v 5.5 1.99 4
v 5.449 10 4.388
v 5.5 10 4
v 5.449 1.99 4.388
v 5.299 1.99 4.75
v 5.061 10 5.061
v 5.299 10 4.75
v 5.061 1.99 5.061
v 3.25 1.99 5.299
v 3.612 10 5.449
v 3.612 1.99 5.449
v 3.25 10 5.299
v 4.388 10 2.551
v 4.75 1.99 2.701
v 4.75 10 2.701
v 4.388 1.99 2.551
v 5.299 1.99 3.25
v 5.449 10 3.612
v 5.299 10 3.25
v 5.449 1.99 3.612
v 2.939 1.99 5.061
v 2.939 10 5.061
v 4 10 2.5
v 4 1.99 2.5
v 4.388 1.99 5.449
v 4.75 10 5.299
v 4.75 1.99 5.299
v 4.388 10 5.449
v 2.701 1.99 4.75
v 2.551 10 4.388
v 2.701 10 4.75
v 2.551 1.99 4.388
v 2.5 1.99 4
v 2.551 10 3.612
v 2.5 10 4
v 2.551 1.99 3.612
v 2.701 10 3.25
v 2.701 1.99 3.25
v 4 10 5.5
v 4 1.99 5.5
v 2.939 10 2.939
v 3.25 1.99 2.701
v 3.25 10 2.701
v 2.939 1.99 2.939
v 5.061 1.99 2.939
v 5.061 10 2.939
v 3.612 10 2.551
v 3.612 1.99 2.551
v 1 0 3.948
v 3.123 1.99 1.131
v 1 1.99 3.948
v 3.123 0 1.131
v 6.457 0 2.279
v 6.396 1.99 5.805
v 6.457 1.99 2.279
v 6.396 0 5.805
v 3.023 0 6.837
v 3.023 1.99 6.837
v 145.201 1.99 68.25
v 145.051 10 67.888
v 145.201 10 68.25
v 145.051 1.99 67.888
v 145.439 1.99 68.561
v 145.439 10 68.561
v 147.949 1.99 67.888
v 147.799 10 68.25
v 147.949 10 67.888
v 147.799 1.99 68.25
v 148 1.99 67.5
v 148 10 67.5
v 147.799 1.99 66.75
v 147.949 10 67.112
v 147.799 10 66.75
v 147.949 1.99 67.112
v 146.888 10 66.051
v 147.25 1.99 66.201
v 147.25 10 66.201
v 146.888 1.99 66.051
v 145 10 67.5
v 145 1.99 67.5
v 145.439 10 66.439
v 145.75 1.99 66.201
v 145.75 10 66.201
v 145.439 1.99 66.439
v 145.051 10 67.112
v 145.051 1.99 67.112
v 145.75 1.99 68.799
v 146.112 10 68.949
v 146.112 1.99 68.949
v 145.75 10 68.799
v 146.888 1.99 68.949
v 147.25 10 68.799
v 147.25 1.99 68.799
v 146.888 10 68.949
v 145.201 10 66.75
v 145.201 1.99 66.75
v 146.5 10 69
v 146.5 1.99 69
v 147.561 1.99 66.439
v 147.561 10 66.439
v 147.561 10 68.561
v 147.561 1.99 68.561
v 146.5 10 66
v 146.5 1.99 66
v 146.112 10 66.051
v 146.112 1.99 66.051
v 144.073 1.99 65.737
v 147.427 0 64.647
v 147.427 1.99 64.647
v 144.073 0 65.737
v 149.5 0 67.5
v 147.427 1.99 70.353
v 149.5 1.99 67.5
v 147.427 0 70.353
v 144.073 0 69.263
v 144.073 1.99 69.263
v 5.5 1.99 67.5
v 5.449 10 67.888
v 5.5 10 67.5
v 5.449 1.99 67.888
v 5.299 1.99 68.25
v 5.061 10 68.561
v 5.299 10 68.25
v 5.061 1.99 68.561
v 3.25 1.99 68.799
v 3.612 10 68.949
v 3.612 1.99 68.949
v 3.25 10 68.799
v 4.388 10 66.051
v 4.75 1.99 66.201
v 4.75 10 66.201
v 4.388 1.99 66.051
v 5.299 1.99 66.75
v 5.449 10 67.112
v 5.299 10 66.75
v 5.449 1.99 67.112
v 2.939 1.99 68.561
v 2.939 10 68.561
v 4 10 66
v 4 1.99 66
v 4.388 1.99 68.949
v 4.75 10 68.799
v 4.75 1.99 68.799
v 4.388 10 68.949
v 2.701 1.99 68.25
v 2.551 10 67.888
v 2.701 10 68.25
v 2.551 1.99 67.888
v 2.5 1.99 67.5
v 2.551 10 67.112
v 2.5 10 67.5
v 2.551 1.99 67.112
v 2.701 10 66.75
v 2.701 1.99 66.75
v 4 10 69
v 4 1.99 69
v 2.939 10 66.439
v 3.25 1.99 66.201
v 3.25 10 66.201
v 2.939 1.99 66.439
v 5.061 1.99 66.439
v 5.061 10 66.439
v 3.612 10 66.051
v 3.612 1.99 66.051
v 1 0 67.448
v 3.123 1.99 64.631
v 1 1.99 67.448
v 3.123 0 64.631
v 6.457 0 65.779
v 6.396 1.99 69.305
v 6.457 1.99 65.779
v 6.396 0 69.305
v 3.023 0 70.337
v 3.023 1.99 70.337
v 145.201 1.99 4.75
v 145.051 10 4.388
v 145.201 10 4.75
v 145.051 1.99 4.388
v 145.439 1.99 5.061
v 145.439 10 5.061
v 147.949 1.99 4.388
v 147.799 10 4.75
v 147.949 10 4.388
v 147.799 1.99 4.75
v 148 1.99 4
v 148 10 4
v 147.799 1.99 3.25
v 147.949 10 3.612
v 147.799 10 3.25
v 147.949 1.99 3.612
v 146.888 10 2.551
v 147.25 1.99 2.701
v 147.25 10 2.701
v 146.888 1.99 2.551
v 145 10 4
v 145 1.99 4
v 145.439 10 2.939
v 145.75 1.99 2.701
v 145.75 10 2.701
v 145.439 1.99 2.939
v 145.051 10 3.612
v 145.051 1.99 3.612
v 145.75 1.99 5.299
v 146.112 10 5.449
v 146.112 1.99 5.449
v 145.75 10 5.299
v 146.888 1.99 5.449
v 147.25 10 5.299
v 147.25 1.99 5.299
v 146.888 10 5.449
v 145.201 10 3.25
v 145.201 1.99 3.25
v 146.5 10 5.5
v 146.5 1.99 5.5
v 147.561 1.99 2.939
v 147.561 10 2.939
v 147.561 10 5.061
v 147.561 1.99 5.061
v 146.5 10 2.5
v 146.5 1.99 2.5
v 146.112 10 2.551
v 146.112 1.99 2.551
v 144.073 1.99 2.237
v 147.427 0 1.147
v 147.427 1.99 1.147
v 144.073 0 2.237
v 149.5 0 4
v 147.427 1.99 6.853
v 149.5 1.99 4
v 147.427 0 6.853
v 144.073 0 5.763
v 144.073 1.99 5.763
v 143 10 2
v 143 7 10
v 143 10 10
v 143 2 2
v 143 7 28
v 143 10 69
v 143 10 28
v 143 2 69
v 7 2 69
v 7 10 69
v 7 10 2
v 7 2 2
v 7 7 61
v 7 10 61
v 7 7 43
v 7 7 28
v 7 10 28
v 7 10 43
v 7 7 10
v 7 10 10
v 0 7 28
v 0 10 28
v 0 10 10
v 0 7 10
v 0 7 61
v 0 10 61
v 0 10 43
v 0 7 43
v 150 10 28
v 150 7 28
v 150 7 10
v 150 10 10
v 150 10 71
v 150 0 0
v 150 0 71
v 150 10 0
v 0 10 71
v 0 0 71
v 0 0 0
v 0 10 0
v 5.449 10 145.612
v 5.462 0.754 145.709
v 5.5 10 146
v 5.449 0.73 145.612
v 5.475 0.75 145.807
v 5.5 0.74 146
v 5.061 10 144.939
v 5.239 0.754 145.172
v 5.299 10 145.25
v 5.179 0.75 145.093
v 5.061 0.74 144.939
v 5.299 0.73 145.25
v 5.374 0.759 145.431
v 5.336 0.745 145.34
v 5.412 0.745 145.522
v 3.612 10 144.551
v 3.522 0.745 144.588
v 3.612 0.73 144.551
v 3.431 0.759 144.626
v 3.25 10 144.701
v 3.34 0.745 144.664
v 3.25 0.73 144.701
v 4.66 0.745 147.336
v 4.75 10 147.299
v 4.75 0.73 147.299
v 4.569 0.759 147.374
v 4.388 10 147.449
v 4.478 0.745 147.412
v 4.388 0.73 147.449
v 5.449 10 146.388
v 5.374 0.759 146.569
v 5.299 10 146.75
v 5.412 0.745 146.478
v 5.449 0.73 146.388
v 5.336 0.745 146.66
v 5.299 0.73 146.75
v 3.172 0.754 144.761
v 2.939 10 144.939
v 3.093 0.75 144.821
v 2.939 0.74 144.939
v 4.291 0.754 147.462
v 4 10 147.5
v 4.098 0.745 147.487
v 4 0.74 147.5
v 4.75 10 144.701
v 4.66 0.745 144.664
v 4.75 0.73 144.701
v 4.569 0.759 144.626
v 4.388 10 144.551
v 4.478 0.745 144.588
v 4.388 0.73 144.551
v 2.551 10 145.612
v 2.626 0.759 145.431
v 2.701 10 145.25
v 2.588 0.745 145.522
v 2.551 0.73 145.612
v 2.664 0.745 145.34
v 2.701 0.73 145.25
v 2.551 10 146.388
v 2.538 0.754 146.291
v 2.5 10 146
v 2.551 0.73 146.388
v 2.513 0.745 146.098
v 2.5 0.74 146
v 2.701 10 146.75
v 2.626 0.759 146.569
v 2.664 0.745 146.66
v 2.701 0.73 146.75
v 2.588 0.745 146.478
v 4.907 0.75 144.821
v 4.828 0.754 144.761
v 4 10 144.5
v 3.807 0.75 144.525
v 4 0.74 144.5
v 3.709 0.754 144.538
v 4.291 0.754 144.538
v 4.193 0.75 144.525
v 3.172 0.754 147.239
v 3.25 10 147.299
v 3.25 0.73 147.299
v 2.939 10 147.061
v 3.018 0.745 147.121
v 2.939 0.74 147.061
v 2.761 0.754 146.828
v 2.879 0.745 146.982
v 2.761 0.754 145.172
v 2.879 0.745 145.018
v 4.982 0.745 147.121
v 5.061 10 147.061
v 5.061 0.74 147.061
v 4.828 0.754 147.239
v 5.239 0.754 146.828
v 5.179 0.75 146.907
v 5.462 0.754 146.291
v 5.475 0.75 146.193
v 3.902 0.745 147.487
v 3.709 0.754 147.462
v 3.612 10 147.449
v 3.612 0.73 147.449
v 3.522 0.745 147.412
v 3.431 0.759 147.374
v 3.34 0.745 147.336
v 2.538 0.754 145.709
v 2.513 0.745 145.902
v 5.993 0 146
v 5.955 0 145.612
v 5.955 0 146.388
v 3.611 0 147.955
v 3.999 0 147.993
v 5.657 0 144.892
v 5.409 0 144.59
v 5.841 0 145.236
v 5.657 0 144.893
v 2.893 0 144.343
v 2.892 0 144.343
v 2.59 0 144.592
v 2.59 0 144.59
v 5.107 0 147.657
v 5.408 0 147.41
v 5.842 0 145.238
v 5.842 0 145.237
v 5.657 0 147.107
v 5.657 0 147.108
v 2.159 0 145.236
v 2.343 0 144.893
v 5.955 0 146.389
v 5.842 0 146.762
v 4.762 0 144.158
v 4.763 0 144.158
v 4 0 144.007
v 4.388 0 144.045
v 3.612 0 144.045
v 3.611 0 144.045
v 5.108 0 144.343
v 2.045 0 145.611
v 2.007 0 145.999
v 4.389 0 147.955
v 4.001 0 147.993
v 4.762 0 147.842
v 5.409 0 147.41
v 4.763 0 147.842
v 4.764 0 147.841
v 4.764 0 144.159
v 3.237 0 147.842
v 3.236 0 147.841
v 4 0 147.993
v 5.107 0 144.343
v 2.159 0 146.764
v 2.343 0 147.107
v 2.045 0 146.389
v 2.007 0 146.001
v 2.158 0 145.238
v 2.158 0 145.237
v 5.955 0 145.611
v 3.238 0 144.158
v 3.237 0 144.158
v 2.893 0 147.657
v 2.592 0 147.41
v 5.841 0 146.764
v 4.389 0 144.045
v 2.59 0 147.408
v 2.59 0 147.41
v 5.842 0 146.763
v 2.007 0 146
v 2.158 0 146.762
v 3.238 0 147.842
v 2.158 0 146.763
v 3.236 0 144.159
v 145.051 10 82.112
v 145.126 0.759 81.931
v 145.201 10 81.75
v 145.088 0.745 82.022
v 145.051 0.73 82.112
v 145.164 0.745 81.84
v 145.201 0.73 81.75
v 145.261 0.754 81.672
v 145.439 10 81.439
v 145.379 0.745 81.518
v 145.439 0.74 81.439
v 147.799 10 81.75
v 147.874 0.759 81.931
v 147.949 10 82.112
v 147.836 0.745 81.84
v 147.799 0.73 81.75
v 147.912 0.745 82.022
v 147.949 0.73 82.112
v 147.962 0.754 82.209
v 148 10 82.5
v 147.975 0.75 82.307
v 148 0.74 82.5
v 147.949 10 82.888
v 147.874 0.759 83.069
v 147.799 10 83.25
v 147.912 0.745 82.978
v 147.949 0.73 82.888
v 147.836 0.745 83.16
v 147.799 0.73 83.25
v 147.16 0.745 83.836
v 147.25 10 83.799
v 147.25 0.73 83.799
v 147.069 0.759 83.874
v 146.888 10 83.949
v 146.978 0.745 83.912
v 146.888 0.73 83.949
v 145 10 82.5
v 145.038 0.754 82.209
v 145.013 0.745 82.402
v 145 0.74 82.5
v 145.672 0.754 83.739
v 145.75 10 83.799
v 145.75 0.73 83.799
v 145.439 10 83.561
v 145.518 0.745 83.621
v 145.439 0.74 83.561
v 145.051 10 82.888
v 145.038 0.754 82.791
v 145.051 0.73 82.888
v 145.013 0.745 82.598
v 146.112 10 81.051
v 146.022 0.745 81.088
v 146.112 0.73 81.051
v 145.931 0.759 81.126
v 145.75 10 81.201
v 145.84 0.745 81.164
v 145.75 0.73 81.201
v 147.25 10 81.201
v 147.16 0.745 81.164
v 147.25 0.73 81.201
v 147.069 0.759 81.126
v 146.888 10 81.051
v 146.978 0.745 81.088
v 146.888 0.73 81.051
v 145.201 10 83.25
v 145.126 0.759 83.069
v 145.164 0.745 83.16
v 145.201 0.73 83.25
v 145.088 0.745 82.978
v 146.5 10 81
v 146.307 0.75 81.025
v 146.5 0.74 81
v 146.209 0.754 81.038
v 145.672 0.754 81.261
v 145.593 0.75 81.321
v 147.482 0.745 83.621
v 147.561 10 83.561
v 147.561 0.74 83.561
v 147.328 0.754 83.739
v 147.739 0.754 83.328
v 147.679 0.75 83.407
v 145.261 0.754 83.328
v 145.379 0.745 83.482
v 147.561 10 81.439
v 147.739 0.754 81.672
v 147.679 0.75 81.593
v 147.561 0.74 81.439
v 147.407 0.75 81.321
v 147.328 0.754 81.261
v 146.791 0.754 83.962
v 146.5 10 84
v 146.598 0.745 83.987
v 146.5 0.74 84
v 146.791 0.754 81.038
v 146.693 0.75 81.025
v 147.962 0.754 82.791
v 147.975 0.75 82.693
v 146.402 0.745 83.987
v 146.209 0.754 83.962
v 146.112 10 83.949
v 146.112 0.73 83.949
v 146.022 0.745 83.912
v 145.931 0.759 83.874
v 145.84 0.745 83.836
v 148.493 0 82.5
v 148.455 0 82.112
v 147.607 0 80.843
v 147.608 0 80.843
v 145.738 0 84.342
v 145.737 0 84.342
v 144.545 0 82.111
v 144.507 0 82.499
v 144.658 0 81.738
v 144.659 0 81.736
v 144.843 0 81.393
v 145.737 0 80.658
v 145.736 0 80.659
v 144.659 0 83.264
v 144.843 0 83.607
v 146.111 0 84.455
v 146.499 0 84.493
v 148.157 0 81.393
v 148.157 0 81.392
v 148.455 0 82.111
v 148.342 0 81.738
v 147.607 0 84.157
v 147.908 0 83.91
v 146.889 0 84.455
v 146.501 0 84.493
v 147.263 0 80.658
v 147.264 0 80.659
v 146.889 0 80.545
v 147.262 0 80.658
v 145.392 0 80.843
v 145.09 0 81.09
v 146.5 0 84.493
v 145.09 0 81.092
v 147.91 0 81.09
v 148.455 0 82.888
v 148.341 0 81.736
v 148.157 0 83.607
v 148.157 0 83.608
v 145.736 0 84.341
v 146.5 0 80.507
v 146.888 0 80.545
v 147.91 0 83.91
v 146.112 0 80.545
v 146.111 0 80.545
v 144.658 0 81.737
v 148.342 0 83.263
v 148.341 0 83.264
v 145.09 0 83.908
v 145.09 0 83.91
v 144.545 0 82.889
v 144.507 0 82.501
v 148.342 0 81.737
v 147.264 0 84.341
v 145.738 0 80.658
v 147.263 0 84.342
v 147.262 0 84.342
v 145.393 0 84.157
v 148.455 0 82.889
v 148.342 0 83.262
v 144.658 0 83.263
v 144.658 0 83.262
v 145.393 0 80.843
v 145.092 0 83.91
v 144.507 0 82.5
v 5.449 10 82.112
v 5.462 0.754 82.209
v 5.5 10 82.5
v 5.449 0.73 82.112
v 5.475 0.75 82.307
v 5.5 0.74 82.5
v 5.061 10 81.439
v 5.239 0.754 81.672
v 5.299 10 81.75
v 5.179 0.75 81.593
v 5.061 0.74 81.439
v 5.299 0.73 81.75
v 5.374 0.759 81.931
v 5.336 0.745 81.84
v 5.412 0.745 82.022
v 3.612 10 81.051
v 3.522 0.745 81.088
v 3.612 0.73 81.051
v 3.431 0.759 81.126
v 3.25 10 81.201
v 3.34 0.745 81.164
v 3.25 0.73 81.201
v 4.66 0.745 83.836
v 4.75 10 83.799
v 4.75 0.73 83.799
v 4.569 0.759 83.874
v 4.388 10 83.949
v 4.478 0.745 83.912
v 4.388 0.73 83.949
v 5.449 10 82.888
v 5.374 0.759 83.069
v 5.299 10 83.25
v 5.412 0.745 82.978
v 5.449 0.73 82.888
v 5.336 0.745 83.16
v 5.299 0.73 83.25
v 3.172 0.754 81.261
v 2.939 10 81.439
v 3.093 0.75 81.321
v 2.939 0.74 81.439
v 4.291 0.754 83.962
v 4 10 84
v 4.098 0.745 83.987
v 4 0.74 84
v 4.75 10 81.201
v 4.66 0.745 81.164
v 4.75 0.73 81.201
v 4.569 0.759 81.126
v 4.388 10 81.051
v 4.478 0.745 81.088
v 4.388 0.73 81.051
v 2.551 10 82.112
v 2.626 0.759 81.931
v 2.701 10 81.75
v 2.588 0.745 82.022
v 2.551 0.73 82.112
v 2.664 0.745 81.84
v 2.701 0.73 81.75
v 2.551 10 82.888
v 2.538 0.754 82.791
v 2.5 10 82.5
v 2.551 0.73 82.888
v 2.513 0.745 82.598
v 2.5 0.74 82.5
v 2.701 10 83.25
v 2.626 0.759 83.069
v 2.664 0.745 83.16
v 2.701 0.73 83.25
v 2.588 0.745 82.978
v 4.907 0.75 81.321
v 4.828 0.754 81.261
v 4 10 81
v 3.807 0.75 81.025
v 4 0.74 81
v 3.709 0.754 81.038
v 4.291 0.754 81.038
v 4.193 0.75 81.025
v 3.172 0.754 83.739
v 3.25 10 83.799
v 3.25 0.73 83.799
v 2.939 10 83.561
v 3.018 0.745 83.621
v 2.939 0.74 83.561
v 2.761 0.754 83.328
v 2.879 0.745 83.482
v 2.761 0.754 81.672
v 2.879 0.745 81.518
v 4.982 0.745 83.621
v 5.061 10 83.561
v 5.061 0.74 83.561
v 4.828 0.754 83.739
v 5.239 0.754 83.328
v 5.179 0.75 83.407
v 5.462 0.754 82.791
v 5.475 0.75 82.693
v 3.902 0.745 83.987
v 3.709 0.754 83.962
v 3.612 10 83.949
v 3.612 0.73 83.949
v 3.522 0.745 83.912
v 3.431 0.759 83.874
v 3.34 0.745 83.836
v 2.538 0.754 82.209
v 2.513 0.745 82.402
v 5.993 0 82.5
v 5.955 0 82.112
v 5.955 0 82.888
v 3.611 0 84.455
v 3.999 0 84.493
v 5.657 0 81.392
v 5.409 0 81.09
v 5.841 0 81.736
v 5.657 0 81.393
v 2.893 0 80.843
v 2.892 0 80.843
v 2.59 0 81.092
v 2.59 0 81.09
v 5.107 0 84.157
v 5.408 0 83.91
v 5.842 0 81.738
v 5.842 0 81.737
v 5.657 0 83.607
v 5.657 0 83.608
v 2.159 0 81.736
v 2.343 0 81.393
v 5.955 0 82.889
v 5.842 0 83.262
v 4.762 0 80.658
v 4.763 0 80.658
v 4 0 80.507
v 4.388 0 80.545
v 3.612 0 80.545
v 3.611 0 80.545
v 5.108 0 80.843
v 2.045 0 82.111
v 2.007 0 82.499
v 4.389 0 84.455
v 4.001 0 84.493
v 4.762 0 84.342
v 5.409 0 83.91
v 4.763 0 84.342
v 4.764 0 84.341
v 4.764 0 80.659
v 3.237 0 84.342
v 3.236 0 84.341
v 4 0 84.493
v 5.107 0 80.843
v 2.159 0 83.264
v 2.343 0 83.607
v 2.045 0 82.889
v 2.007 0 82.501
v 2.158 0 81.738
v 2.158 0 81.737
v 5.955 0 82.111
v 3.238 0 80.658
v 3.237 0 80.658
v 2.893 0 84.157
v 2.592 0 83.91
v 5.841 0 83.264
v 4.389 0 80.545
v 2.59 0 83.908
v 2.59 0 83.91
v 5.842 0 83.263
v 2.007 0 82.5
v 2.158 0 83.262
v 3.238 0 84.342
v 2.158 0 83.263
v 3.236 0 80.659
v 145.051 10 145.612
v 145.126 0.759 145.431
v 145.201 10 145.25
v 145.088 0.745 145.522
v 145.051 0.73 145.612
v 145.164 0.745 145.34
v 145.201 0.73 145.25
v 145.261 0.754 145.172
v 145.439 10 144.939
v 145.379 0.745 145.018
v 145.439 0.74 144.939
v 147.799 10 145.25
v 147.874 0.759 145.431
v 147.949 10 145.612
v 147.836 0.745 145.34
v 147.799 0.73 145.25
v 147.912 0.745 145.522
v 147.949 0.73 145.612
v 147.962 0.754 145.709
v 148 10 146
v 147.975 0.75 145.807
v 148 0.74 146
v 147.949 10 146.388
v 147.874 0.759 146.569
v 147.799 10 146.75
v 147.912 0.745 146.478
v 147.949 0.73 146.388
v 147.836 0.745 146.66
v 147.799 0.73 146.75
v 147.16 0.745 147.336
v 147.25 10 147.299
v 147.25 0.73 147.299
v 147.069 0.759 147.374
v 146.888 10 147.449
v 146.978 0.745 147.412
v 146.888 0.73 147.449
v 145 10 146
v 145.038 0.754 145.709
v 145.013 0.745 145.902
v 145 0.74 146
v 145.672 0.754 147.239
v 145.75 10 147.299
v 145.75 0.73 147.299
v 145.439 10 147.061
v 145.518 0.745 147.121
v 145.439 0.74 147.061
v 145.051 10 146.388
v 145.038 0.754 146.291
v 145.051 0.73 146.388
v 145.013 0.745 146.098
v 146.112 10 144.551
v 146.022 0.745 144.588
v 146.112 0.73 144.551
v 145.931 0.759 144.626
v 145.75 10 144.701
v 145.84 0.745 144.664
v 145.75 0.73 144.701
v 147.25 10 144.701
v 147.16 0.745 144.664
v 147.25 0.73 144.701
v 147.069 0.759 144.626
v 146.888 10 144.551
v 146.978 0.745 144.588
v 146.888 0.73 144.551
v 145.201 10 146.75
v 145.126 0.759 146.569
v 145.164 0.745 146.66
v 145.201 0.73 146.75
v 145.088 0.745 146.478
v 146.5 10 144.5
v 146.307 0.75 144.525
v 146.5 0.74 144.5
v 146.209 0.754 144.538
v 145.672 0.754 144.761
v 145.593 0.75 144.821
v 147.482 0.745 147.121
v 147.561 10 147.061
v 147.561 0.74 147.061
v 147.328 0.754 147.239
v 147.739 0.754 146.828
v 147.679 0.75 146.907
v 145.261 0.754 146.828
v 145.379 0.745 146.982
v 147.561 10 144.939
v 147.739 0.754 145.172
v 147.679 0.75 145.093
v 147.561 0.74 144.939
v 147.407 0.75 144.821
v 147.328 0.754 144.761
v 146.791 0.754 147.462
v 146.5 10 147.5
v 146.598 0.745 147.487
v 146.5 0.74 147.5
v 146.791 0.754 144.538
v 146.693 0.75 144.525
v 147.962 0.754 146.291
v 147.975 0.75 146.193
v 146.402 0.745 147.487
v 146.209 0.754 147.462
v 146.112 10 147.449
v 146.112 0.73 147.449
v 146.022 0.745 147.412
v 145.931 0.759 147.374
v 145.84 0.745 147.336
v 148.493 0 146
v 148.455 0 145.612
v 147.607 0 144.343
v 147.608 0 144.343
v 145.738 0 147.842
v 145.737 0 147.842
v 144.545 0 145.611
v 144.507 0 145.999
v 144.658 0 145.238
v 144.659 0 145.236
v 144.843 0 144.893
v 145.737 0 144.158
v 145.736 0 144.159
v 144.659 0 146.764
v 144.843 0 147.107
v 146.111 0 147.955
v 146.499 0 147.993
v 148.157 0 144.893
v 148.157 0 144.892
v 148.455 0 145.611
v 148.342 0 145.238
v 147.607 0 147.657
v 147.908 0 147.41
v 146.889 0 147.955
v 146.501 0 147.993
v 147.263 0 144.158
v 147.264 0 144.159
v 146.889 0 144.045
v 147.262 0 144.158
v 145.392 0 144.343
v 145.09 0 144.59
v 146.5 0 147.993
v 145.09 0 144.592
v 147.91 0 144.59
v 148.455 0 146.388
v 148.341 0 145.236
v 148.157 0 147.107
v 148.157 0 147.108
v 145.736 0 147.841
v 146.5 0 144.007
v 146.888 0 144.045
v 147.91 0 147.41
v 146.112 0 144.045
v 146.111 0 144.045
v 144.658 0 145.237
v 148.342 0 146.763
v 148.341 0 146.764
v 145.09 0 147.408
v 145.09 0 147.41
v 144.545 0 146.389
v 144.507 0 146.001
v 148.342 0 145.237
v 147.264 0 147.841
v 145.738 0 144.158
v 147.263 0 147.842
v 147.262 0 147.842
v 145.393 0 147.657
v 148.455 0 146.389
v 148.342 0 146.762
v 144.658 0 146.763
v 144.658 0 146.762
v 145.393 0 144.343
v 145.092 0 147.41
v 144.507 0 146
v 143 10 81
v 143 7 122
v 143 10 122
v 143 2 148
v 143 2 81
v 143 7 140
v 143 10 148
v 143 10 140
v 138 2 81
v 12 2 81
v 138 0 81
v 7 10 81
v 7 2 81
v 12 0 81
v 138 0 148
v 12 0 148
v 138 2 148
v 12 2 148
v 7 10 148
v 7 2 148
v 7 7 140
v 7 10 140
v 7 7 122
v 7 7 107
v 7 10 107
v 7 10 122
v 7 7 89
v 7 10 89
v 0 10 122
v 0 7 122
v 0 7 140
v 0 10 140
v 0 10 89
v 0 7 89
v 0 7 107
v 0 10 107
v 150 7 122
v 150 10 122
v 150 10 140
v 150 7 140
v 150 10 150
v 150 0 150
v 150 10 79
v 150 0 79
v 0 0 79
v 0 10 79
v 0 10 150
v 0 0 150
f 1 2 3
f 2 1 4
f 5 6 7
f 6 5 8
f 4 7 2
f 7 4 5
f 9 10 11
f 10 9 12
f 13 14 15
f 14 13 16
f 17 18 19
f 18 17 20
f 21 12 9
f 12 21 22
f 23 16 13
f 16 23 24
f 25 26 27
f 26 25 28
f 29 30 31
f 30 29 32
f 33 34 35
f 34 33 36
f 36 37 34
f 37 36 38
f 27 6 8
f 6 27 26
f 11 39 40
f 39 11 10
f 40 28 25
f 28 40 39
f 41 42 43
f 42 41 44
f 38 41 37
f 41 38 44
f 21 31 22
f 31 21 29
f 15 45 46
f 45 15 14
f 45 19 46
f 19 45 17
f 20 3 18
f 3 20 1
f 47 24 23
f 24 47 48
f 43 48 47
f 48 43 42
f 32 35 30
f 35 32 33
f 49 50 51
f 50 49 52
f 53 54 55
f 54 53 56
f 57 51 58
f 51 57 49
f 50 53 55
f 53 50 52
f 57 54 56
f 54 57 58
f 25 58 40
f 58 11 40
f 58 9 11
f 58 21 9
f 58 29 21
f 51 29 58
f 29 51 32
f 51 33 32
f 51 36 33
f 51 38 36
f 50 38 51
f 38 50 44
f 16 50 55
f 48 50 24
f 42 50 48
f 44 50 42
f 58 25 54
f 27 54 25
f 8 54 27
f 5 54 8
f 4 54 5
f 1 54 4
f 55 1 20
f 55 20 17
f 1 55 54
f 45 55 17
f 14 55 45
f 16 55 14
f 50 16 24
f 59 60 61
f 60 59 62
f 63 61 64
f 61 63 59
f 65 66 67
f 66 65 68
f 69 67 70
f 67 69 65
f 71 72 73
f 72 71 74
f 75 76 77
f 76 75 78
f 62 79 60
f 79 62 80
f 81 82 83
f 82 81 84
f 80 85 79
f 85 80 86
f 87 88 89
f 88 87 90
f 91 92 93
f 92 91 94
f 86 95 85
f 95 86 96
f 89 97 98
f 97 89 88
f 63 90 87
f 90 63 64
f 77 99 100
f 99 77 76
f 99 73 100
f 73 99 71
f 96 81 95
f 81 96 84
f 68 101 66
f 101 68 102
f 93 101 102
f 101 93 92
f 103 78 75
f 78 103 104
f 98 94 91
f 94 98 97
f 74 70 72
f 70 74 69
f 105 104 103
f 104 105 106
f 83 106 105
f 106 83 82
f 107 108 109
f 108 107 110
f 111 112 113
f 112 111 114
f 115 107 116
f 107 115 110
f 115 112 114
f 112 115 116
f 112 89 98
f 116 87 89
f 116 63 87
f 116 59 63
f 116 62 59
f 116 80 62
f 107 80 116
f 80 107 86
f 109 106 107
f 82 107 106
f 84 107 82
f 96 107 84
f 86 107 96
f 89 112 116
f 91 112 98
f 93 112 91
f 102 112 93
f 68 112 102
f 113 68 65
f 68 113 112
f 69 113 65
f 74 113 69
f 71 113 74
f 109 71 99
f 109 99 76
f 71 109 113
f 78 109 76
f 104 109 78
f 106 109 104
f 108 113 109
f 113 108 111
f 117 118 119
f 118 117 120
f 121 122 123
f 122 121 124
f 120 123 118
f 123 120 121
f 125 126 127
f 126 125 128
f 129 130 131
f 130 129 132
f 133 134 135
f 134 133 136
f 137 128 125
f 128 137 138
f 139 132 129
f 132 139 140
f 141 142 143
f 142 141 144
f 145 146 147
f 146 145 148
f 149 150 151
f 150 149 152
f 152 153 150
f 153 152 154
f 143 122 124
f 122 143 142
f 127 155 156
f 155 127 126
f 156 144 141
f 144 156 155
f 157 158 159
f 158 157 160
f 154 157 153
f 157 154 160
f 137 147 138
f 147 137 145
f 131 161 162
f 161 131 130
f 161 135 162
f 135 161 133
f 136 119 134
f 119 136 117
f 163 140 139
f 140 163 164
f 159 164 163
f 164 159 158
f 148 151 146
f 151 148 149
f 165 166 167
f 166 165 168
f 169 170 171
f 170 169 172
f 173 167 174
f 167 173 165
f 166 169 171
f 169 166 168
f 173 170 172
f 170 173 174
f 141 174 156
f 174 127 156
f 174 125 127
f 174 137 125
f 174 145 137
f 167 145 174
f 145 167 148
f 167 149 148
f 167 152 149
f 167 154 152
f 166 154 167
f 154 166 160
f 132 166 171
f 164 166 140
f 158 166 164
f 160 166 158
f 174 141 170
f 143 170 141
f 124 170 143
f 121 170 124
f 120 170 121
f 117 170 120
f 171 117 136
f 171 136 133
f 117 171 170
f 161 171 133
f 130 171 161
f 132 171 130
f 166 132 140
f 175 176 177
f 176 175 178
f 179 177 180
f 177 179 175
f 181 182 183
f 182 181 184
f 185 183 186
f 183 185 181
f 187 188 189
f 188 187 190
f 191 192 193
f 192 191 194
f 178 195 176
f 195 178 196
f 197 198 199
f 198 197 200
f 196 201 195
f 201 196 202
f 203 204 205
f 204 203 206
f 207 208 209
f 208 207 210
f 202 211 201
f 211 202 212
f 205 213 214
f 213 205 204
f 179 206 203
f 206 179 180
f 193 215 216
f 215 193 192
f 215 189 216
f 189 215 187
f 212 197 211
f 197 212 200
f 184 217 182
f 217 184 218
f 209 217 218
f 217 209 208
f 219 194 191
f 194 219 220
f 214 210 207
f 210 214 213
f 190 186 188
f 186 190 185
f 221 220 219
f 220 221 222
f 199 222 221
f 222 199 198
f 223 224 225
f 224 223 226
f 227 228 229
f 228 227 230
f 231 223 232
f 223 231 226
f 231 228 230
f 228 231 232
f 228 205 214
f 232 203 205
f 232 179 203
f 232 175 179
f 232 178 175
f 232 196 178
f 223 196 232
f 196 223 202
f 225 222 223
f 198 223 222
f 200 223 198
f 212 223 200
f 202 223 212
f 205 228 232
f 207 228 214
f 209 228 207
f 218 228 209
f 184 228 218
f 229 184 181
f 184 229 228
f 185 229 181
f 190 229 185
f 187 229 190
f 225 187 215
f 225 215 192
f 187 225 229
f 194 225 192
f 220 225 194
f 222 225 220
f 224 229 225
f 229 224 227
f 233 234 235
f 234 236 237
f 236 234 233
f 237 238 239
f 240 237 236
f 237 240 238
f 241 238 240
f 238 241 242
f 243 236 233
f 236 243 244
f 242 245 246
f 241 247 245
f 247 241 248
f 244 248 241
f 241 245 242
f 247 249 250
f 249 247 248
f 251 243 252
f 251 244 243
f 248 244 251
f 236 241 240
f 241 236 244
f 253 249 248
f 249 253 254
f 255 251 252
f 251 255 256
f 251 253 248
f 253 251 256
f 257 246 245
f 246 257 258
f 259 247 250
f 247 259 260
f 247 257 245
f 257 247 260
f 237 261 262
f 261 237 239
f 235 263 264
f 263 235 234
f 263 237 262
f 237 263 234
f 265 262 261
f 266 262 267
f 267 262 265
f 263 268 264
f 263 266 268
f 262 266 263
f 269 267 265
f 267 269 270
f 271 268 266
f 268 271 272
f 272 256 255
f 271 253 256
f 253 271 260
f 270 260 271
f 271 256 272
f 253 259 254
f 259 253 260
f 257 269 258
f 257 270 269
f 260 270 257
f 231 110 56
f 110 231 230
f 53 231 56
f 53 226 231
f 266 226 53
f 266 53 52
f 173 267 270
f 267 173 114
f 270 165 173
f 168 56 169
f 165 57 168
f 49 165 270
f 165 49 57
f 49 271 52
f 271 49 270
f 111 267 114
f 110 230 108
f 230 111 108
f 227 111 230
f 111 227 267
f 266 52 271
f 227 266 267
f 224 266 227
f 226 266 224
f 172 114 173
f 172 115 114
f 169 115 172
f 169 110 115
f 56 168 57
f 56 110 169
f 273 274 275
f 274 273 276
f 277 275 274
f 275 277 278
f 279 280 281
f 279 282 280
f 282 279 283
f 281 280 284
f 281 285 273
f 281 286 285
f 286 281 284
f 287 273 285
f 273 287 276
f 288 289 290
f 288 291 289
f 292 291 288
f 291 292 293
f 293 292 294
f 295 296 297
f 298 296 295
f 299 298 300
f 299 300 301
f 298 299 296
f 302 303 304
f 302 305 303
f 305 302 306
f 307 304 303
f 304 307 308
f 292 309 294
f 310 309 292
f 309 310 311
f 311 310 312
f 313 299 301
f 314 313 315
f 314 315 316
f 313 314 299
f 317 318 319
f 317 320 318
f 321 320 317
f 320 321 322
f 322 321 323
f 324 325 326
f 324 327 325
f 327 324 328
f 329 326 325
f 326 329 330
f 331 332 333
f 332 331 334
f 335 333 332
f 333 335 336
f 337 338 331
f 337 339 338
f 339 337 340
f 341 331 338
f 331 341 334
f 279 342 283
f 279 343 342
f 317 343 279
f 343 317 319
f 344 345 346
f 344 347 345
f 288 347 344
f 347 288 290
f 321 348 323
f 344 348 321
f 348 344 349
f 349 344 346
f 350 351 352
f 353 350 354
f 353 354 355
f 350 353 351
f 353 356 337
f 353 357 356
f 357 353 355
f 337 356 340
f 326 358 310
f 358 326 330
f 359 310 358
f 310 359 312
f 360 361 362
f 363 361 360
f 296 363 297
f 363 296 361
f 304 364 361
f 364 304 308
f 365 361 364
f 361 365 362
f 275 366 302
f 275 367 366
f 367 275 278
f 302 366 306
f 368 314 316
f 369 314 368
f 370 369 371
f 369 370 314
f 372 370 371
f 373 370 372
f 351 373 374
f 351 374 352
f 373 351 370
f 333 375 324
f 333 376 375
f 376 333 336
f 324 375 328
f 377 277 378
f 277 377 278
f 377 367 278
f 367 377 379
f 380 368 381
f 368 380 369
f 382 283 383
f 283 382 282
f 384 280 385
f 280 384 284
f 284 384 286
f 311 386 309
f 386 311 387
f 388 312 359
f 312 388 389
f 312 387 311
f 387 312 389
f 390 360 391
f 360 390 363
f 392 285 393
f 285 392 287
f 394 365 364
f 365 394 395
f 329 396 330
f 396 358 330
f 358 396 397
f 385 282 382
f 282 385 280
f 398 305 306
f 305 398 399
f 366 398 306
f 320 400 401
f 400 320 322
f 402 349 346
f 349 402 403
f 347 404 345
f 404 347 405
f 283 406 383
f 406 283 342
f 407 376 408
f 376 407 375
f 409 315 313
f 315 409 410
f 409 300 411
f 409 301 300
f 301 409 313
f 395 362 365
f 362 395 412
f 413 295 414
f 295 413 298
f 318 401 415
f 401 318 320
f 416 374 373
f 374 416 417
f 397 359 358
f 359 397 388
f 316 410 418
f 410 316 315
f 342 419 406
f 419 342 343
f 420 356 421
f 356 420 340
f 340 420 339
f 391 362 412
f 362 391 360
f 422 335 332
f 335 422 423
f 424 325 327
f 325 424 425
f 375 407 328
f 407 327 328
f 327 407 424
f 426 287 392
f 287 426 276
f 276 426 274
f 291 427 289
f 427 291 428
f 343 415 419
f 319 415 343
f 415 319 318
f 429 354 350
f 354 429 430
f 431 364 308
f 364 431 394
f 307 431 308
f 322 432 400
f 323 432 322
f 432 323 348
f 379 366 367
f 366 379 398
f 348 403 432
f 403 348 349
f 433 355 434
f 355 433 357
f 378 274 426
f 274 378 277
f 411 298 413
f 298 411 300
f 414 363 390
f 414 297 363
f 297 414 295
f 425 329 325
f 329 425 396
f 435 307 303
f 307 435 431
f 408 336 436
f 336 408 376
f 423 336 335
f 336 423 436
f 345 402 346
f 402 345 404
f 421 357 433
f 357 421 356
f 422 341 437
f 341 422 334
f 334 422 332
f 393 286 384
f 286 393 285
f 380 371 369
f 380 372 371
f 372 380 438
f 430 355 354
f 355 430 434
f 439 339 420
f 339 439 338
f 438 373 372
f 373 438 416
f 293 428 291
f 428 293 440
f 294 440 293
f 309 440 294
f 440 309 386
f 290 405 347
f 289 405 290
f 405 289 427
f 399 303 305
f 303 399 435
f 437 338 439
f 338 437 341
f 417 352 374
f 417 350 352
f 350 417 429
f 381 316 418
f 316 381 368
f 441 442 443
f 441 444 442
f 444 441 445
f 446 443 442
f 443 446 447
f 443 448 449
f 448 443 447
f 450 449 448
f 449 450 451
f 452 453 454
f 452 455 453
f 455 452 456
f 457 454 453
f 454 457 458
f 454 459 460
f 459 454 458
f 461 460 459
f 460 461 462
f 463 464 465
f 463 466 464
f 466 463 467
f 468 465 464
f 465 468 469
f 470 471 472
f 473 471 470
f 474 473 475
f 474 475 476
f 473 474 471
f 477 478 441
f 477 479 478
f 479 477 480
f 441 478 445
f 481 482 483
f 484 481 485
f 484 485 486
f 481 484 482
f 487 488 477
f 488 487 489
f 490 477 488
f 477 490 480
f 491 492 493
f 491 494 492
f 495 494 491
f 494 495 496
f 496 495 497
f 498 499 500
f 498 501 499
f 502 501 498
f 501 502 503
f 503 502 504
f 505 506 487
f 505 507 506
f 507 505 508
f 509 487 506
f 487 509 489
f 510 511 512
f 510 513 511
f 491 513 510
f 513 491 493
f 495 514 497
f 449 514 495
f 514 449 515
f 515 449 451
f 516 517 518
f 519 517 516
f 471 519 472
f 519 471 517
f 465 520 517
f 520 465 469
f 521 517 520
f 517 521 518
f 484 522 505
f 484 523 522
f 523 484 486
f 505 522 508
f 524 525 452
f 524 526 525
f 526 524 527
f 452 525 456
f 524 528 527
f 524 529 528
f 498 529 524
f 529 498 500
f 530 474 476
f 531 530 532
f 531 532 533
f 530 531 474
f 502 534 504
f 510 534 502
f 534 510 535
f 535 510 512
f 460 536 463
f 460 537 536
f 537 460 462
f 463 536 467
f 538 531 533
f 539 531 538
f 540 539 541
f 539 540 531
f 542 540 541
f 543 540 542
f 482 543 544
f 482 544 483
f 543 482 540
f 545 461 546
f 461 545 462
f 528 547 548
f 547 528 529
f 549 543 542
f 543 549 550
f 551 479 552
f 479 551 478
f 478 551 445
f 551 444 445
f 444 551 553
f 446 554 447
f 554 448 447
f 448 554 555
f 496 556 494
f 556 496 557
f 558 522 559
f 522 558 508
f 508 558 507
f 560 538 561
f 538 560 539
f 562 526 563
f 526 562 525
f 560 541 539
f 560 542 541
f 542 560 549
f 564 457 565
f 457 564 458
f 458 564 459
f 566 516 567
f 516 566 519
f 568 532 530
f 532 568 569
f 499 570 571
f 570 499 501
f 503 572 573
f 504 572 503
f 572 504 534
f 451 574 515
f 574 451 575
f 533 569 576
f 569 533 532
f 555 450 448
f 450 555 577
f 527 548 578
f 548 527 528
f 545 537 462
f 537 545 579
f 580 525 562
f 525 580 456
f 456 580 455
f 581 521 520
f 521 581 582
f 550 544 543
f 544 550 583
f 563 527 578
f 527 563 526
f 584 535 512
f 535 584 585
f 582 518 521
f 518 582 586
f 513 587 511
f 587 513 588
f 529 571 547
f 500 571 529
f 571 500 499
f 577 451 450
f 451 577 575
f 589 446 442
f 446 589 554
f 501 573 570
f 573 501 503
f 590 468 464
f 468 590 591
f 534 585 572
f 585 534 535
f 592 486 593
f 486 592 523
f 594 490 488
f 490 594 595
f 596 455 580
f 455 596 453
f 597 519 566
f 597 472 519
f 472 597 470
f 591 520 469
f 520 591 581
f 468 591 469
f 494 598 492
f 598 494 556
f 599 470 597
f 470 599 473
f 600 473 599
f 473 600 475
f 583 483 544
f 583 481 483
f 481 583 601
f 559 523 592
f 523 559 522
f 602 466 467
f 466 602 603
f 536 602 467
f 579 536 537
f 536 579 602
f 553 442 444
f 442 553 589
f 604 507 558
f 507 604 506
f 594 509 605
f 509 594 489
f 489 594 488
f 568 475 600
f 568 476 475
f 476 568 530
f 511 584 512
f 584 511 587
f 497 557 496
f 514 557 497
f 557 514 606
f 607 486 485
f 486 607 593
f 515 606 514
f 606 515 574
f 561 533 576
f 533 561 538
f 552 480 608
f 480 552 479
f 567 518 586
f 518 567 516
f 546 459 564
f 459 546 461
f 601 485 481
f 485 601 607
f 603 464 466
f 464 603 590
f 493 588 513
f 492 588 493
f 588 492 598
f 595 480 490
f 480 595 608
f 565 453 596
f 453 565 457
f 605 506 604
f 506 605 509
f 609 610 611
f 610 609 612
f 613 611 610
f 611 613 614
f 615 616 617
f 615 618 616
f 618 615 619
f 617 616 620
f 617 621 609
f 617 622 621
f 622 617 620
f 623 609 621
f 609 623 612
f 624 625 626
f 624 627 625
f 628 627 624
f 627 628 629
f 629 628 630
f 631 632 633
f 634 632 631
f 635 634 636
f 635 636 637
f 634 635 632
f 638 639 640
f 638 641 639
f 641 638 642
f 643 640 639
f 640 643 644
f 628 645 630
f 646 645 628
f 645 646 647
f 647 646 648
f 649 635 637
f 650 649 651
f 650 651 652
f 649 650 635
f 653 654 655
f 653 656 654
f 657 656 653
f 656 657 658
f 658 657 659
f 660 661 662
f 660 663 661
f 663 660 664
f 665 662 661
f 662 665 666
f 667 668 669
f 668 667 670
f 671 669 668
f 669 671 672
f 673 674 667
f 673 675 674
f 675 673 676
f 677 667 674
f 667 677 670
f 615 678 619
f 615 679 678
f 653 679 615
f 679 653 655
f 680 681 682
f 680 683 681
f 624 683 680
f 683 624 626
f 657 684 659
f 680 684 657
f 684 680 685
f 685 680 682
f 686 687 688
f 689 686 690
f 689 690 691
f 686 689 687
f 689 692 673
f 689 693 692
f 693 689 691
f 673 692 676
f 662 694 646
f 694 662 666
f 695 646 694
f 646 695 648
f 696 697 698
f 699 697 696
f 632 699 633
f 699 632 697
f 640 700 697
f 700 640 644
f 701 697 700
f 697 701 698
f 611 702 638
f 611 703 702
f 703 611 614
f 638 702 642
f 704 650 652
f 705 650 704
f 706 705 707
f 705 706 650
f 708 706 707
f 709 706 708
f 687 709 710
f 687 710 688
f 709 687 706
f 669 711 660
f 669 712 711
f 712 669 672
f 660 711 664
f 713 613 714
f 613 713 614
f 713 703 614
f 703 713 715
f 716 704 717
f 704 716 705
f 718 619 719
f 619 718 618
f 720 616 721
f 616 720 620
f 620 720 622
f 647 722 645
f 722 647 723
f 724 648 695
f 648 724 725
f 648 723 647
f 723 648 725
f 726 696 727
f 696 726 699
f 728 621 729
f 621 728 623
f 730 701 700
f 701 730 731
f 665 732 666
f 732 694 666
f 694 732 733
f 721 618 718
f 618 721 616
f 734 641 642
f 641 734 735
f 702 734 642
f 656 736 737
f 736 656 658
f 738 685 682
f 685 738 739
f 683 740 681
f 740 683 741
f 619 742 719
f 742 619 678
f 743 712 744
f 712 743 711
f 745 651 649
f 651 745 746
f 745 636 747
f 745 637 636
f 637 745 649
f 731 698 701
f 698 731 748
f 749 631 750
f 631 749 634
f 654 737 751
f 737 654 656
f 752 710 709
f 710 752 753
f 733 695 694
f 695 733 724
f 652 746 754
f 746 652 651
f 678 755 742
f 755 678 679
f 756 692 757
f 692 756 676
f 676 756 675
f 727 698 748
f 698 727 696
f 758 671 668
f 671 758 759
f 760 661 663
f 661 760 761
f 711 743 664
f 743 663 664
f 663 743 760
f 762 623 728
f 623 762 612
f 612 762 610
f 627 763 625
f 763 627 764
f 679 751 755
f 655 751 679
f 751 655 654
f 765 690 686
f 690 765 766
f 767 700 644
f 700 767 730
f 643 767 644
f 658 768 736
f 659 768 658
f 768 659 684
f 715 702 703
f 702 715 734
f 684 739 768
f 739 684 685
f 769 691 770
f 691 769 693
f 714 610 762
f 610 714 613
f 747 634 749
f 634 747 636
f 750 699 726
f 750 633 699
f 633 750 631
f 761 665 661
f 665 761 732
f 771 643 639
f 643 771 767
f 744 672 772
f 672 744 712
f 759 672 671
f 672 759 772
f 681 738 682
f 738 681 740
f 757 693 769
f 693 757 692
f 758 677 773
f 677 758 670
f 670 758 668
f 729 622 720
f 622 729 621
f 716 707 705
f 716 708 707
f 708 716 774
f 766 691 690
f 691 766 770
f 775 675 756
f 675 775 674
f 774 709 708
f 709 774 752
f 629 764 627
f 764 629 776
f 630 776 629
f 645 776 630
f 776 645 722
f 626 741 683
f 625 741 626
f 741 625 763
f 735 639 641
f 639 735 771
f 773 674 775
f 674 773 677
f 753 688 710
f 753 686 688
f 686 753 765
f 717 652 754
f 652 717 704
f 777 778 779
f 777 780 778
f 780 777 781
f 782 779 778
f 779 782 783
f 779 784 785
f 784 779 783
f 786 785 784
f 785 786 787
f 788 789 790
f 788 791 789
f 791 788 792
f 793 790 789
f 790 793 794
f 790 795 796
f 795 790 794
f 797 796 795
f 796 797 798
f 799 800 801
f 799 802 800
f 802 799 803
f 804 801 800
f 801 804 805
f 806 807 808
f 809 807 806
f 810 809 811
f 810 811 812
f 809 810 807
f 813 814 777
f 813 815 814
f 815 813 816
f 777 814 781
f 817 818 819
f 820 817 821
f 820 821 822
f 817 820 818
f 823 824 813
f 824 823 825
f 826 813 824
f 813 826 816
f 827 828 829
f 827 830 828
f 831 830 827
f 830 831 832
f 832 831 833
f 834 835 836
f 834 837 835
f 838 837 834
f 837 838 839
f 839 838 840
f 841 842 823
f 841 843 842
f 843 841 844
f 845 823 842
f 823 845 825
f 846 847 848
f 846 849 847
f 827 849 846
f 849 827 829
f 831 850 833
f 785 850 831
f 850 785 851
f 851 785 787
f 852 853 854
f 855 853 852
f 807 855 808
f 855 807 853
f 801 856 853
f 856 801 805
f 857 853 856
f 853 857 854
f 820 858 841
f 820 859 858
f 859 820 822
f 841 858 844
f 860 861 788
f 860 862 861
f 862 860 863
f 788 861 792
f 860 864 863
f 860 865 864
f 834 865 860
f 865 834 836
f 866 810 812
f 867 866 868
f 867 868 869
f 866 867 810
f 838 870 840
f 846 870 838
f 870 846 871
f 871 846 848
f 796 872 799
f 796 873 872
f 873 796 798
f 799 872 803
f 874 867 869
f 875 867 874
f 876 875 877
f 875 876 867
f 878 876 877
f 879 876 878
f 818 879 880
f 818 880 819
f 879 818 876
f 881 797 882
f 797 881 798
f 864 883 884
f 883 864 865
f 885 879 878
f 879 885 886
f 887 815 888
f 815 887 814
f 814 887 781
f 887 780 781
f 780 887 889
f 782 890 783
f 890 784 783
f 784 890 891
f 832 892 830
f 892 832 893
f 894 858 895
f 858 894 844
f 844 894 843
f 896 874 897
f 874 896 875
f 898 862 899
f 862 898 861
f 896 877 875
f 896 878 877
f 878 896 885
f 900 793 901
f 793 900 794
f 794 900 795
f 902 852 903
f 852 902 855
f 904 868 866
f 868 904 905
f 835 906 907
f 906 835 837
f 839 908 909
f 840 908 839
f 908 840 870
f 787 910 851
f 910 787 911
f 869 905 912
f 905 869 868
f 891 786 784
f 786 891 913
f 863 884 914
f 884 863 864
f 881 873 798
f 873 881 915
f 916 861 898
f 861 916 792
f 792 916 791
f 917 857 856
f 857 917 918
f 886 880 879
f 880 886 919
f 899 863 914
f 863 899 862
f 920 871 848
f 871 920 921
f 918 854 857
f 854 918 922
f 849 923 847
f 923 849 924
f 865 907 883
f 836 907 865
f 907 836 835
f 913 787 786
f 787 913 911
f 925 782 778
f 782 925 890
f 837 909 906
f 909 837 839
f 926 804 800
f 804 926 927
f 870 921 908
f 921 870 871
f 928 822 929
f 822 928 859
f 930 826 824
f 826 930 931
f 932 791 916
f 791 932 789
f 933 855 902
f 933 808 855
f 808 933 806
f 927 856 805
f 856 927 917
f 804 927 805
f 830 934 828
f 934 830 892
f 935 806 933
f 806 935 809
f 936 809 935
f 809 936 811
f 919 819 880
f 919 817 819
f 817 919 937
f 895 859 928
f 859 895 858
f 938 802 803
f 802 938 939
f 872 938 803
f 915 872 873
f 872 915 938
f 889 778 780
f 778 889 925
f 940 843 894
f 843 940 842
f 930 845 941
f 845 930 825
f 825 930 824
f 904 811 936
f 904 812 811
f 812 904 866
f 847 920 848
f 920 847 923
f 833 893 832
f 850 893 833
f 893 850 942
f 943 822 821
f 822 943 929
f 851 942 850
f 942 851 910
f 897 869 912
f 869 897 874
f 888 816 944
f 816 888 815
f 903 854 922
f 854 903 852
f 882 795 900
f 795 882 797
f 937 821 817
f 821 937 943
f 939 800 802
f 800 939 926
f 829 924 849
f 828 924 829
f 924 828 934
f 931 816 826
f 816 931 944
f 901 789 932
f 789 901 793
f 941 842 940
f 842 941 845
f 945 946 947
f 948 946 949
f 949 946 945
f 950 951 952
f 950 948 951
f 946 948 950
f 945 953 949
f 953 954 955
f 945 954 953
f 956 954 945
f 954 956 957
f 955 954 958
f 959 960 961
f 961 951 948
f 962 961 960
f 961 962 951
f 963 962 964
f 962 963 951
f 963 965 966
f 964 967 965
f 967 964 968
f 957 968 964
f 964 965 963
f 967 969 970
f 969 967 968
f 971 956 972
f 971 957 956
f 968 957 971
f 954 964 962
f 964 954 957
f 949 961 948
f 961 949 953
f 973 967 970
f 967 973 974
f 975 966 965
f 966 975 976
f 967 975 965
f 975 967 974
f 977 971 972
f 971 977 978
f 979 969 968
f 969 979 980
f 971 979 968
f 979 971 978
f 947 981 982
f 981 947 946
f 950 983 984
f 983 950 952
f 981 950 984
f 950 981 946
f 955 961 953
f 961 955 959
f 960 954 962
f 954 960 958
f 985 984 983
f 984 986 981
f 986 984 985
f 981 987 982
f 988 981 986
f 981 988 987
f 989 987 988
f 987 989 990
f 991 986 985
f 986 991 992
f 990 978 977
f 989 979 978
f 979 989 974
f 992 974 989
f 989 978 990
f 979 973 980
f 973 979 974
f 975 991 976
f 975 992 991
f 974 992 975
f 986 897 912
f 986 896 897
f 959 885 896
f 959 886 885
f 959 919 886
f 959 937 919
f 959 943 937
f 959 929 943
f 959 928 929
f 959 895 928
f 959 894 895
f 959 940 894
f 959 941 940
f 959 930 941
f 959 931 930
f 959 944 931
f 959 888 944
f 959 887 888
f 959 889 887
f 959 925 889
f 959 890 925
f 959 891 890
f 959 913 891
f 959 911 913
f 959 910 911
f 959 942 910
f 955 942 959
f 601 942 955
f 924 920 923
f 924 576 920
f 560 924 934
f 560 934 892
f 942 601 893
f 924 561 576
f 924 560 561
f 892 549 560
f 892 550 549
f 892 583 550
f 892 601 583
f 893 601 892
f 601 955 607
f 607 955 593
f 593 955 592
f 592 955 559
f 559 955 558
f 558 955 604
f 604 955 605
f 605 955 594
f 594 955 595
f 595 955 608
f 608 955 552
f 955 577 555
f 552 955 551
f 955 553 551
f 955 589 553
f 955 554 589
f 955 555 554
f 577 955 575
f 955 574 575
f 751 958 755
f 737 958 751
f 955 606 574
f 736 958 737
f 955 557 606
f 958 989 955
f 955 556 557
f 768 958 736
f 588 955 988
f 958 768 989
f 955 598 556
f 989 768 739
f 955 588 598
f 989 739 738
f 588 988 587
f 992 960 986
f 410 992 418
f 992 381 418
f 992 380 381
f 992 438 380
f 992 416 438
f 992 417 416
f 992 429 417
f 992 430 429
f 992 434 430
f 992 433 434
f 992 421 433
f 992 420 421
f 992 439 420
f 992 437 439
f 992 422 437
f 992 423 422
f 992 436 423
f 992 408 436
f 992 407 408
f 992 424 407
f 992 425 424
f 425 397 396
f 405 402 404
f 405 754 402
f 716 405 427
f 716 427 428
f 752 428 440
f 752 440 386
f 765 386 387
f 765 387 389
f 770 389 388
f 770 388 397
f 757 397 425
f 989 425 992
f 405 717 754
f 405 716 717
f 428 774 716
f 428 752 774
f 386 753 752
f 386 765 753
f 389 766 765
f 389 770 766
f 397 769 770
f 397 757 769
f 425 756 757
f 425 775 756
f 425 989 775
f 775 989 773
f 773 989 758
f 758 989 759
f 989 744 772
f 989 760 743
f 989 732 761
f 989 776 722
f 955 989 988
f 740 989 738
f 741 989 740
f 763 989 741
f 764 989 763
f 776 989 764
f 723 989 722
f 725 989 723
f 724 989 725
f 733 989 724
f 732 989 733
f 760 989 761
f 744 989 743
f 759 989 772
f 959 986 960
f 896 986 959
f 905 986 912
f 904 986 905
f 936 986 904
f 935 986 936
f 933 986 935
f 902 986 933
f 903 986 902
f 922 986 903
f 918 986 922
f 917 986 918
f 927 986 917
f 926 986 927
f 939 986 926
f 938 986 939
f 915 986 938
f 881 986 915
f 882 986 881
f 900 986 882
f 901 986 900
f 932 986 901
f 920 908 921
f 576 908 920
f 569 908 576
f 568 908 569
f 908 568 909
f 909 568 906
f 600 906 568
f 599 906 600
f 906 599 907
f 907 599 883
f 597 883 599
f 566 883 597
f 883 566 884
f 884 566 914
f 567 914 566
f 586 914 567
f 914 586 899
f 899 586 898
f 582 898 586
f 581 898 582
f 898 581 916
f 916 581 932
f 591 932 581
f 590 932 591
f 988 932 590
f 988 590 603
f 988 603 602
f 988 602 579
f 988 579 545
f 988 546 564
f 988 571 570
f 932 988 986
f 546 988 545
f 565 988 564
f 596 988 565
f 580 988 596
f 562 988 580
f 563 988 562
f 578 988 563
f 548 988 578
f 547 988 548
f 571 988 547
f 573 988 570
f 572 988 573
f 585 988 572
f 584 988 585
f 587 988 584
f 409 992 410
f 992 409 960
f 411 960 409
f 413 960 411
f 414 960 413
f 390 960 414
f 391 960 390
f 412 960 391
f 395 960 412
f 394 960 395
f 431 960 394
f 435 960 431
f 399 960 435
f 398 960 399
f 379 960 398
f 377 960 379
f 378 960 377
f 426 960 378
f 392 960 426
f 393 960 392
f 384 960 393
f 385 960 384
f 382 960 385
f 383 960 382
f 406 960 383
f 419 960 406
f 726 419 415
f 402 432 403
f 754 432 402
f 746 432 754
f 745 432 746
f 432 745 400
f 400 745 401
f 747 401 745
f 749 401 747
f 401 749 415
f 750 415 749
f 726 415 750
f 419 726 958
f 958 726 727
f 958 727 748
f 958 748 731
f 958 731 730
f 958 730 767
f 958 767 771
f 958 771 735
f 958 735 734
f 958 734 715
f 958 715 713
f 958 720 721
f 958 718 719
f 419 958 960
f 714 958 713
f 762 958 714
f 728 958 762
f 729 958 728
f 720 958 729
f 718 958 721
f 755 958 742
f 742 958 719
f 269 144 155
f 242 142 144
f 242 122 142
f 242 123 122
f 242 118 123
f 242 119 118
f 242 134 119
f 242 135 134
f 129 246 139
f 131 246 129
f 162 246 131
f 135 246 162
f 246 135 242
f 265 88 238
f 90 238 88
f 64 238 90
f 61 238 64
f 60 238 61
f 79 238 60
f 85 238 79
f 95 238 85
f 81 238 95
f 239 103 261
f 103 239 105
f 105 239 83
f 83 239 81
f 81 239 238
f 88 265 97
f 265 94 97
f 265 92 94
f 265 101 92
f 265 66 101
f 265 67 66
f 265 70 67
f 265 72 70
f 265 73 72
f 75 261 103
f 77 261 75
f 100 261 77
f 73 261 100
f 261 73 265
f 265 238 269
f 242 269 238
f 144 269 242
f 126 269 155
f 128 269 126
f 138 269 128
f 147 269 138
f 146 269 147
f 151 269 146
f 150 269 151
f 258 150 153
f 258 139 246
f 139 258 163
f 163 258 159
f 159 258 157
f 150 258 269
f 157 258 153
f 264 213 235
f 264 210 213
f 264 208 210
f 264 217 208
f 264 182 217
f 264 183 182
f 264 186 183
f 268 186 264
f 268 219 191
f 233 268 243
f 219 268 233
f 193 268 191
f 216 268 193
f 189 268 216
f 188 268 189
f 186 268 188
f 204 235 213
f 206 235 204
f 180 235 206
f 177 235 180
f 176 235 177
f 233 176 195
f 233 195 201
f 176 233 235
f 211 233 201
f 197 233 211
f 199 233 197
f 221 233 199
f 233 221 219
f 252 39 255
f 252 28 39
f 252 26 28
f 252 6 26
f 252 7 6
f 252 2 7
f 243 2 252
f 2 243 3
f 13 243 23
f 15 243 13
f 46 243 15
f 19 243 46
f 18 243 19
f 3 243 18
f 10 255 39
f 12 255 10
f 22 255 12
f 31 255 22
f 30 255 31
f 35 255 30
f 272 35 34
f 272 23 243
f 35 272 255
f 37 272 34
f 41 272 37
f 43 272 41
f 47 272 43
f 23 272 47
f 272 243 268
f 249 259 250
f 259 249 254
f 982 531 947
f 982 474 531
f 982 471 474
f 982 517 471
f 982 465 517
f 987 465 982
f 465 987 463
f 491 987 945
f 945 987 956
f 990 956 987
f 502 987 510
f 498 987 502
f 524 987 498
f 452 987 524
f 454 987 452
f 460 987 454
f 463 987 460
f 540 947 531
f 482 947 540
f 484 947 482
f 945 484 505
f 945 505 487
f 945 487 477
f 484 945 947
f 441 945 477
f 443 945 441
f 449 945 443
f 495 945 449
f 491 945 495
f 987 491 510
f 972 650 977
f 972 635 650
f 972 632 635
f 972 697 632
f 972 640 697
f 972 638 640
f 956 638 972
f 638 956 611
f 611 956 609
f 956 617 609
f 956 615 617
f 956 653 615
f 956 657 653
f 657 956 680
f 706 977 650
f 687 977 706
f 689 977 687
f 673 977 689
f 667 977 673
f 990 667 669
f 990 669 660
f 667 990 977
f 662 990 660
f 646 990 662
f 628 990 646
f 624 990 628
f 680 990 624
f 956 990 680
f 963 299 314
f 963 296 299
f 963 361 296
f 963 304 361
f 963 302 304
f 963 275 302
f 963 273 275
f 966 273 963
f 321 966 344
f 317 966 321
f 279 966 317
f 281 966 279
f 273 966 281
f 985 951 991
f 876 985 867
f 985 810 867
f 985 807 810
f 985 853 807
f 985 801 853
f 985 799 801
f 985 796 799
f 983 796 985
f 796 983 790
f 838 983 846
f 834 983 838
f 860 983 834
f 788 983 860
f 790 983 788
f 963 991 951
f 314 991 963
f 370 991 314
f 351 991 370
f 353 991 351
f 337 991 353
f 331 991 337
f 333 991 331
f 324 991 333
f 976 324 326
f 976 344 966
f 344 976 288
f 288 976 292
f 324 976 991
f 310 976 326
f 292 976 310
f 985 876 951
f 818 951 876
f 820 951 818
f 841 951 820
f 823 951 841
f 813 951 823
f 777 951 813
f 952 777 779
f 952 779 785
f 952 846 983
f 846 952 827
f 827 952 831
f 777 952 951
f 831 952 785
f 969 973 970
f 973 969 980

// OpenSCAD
$fa = 1;
$fs = 0.4;

module inner() {
    c_w = 6;
    c_h = 18;

    color("orangered") cube([136, 16, 67]);
    
    color("grey") translate([-20+0.01, 5, 8]) cube([20, c_w, c_h]);
    color("grey") translate([-20+0.01, 5, 67-8-c_h]) cube([20, c_w, c_h]);
    color("grey") translate([136-0.01, 5, 8]) cube([20, c_w, c_h]);
};

module screen() {
    color("lightblue") cube([126, 10, 67]);
}

module screw(o=0) {
    translate([1.5,0,1.5]) rotate([90,0,0])
        cylinder(50, d=3, center=true);
    color("green")
        translate([1.5,1.99,1.5]) rotate([90,o,0])
        cylinder(d=6, h=2, $fn=5);
    color("red")
        translate([1.5,20.01,1.5]) rotate([90,0,0])
        cylinder(h = 1.5, r1 = 2, r2 = 1, center = false);
}

module inner2() {
    translate([2.5,0,2.5])
        screw(35);
    translate([150-5,0,71-5])
        screw();
    translate([2.5,0,71-5])
        screw(35);
    translate([150-5,0,2.5])
        screw();
    
    translate([2+5,2,2])
        inner();
    translate([5+5+2,16,2])
        screen();
}


//translate([0,-200,0]) inner2();

module boite() {
    
    difference() {
        cube([150,20,71]);
        inner2();
    }
}

difference() {
    union() {
        boite();
        translate([0, 20, 150]) rotate([180,0,0]) boite();
    };
    translate([-1,10,-1]) cube([400, 11, 400]);
}
